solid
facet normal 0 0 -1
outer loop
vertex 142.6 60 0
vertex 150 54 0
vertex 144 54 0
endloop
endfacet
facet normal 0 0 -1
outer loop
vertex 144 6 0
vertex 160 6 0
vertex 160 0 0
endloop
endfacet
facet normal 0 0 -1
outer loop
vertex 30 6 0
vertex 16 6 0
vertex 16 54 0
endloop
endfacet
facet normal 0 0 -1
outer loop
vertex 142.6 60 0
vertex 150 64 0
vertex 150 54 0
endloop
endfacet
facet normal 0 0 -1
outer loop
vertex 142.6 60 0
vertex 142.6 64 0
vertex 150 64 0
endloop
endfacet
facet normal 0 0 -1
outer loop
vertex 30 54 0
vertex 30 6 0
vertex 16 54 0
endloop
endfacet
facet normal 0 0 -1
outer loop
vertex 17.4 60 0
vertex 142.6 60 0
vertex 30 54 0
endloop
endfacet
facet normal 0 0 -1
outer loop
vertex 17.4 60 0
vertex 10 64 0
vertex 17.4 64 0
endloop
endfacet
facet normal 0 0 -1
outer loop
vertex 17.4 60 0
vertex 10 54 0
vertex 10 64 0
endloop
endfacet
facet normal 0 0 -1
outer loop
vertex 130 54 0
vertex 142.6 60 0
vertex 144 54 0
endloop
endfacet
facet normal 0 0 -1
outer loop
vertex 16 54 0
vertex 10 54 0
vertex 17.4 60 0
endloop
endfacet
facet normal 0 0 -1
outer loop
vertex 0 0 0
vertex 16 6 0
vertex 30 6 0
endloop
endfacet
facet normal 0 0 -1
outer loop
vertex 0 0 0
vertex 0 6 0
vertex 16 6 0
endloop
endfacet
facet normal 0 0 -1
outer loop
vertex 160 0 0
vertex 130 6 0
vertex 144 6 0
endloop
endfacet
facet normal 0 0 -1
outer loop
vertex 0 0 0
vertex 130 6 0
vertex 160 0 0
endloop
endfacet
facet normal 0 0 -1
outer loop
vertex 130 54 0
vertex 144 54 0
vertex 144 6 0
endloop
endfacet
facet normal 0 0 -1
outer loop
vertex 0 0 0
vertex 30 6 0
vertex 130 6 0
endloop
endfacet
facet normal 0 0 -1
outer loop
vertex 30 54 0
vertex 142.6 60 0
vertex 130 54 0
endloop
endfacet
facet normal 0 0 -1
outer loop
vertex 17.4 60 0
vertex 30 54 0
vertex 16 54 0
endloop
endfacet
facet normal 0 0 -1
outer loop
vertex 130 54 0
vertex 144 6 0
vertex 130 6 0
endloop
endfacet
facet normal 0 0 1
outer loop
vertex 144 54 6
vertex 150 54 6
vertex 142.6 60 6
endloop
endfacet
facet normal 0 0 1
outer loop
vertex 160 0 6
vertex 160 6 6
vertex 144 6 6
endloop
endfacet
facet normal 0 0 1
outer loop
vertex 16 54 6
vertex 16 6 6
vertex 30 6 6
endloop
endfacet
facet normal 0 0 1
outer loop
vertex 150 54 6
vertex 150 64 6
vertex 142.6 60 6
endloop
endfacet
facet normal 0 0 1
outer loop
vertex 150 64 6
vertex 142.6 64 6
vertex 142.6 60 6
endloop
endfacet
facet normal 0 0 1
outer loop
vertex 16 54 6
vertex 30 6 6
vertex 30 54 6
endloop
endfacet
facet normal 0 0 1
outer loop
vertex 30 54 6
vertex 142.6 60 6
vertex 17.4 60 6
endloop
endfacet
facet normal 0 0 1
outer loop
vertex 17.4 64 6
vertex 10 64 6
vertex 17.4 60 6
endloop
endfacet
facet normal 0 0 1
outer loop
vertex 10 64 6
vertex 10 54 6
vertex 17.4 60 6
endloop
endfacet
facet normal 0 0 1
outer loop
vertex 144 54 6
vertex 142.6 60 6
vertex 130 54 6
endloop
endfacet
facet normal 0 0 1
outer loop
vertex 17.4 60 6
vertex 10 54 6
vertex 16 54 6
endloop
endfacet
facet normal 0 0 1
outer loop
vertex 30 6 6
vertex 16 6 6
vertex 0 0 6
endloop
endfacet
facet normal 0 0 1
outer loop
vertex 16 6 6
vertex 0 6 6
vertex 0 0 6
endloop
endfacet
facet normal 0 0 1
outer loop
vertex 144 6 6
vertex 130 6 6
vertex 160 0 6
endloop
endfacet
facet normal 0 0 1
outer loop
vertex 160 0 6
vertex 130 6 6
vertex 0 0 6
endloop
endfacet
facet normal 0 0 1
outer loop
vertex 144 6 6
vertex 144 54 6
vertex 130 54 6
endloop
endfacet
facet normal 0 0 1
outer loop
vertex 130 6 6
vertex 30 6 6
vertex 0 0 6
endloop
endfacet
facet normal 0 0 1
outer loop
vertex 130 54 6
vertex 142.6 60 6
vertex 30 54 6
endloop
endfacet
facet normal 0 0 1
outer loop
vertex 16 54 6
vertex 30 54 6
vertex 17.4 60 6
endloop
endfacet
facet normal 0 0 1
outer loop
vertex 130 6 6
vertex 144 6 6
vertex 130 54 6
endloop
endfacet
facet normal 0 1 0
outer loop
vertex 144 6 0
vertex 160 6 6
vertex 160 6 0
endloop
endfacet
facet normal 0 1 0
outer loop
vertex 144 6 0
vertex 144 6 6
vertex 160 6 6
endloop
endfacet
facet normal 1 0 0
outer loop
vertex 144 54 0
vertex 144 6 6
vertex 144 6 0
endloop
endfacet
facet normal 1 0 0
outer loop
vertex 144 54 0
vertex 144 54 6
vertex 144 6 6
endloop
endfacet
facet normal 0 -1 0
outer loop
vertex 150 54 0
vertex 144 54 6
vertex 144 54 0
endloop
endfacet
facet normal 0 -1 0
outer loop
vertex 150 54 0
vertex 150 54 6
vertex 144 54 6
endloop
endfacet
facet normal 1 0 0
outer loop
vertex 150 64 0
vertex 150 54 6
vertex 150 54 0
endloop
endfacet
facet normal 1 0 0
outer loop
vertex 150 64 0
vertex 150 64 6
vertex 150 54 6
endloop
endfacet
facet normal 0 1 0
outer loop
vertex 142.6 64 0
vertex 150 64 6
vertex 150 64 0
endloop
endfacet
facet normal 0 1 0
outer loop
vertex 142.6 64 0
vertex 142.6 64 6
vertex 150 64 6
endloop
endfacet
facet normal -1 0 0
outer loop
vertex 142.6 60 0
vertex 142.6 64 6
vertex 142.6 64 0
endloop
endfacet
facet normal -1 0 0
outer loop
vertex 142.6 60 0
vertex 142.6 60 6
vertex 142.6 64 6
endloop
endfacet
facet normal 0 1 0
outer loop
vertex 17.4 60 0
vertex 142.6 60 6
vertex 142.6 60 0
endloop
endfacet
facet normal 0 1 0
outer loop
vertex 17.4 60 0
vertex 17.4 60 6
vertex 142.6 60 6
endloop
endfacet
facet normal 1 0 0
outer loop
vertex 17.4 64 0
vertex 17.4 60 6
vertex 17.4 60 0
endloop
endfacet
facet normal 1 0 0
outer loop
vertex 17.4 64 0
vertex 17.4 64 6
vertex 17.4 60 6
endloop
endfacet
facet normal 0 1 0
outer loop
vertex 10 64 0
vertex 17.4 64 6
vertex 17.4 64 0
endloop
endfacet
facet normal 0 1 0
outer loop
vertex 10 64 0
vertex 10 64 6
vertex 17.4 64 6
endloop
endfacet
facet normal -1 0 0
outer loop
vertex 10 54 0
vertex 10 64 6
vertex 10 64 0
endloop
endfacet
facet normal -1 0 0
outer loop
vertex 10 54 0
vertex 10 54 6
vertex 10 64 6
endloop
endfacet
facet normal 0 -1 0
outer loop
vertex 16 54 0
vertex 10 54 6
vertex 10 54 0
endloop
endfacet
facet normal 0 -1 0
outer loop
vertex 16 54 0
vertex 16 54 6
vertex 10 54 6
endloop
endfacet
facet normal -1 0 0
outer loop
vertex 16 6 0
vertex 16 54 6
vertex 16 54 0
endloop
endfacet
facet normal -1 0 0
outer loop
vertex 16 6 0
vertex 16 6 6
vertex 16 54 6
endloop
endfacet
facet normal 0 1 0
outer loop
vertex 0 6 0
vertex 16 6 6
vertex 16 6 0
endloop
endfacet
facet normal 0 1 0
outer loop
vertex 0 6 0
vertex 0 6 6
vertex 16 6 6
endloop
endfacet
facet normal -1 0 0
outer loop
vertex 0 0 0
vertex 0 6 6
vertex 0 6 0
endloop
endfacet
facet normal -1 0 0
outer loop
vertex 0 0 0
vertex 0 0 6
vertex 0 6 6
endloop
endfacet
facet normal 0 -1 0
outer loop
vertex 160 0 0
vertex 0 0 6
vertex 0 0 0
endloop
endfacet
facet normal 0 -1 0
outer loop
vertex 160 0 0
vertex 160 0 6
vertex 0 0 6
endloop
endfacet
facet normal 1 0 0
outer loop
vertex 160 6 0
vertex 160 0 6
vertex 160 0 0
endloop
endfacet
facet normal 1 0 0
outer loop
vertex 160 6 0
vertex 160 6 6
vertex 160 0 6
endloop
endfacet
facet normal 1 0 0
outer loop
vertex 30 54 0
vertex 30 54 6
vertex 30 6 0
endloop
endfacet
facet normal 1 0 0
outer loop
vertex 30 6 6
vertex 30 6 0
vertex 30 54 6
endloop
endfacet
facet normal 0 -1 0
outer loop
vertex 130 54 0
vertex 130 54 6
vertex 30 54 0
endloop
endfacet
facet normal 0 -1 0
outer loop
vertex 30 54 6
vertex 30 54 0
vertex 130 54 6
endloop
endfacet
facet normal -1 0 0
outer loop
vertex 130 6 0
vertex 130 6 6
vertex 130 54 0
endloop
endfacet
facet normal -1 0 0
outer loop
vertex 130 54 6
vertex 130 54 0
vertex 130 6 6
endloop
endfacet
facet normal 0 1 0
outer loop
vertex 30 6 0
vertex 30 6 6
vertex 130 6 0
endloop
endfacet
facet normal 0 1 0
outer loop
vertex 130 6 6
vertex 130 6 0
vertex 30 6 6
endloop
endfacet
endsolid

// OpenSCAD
linear_extrude(6) difference(){ polygon([[0.0, 0], [160.0, 0], [160.0, 6], [144.0, 6], [144.0, 54], [150.0, 54], [150.0, 64], [142.6, 64], [142.6, 60], [17.4, 60], [17.4, 64], [10.0, 64], [10.0, 54], [16.0, 54], [16.0, 6], [0.0, 6]]);polygon([[30.0, 6], [130.0, 6], [130.0, 54], [30.0, 54]]);}
